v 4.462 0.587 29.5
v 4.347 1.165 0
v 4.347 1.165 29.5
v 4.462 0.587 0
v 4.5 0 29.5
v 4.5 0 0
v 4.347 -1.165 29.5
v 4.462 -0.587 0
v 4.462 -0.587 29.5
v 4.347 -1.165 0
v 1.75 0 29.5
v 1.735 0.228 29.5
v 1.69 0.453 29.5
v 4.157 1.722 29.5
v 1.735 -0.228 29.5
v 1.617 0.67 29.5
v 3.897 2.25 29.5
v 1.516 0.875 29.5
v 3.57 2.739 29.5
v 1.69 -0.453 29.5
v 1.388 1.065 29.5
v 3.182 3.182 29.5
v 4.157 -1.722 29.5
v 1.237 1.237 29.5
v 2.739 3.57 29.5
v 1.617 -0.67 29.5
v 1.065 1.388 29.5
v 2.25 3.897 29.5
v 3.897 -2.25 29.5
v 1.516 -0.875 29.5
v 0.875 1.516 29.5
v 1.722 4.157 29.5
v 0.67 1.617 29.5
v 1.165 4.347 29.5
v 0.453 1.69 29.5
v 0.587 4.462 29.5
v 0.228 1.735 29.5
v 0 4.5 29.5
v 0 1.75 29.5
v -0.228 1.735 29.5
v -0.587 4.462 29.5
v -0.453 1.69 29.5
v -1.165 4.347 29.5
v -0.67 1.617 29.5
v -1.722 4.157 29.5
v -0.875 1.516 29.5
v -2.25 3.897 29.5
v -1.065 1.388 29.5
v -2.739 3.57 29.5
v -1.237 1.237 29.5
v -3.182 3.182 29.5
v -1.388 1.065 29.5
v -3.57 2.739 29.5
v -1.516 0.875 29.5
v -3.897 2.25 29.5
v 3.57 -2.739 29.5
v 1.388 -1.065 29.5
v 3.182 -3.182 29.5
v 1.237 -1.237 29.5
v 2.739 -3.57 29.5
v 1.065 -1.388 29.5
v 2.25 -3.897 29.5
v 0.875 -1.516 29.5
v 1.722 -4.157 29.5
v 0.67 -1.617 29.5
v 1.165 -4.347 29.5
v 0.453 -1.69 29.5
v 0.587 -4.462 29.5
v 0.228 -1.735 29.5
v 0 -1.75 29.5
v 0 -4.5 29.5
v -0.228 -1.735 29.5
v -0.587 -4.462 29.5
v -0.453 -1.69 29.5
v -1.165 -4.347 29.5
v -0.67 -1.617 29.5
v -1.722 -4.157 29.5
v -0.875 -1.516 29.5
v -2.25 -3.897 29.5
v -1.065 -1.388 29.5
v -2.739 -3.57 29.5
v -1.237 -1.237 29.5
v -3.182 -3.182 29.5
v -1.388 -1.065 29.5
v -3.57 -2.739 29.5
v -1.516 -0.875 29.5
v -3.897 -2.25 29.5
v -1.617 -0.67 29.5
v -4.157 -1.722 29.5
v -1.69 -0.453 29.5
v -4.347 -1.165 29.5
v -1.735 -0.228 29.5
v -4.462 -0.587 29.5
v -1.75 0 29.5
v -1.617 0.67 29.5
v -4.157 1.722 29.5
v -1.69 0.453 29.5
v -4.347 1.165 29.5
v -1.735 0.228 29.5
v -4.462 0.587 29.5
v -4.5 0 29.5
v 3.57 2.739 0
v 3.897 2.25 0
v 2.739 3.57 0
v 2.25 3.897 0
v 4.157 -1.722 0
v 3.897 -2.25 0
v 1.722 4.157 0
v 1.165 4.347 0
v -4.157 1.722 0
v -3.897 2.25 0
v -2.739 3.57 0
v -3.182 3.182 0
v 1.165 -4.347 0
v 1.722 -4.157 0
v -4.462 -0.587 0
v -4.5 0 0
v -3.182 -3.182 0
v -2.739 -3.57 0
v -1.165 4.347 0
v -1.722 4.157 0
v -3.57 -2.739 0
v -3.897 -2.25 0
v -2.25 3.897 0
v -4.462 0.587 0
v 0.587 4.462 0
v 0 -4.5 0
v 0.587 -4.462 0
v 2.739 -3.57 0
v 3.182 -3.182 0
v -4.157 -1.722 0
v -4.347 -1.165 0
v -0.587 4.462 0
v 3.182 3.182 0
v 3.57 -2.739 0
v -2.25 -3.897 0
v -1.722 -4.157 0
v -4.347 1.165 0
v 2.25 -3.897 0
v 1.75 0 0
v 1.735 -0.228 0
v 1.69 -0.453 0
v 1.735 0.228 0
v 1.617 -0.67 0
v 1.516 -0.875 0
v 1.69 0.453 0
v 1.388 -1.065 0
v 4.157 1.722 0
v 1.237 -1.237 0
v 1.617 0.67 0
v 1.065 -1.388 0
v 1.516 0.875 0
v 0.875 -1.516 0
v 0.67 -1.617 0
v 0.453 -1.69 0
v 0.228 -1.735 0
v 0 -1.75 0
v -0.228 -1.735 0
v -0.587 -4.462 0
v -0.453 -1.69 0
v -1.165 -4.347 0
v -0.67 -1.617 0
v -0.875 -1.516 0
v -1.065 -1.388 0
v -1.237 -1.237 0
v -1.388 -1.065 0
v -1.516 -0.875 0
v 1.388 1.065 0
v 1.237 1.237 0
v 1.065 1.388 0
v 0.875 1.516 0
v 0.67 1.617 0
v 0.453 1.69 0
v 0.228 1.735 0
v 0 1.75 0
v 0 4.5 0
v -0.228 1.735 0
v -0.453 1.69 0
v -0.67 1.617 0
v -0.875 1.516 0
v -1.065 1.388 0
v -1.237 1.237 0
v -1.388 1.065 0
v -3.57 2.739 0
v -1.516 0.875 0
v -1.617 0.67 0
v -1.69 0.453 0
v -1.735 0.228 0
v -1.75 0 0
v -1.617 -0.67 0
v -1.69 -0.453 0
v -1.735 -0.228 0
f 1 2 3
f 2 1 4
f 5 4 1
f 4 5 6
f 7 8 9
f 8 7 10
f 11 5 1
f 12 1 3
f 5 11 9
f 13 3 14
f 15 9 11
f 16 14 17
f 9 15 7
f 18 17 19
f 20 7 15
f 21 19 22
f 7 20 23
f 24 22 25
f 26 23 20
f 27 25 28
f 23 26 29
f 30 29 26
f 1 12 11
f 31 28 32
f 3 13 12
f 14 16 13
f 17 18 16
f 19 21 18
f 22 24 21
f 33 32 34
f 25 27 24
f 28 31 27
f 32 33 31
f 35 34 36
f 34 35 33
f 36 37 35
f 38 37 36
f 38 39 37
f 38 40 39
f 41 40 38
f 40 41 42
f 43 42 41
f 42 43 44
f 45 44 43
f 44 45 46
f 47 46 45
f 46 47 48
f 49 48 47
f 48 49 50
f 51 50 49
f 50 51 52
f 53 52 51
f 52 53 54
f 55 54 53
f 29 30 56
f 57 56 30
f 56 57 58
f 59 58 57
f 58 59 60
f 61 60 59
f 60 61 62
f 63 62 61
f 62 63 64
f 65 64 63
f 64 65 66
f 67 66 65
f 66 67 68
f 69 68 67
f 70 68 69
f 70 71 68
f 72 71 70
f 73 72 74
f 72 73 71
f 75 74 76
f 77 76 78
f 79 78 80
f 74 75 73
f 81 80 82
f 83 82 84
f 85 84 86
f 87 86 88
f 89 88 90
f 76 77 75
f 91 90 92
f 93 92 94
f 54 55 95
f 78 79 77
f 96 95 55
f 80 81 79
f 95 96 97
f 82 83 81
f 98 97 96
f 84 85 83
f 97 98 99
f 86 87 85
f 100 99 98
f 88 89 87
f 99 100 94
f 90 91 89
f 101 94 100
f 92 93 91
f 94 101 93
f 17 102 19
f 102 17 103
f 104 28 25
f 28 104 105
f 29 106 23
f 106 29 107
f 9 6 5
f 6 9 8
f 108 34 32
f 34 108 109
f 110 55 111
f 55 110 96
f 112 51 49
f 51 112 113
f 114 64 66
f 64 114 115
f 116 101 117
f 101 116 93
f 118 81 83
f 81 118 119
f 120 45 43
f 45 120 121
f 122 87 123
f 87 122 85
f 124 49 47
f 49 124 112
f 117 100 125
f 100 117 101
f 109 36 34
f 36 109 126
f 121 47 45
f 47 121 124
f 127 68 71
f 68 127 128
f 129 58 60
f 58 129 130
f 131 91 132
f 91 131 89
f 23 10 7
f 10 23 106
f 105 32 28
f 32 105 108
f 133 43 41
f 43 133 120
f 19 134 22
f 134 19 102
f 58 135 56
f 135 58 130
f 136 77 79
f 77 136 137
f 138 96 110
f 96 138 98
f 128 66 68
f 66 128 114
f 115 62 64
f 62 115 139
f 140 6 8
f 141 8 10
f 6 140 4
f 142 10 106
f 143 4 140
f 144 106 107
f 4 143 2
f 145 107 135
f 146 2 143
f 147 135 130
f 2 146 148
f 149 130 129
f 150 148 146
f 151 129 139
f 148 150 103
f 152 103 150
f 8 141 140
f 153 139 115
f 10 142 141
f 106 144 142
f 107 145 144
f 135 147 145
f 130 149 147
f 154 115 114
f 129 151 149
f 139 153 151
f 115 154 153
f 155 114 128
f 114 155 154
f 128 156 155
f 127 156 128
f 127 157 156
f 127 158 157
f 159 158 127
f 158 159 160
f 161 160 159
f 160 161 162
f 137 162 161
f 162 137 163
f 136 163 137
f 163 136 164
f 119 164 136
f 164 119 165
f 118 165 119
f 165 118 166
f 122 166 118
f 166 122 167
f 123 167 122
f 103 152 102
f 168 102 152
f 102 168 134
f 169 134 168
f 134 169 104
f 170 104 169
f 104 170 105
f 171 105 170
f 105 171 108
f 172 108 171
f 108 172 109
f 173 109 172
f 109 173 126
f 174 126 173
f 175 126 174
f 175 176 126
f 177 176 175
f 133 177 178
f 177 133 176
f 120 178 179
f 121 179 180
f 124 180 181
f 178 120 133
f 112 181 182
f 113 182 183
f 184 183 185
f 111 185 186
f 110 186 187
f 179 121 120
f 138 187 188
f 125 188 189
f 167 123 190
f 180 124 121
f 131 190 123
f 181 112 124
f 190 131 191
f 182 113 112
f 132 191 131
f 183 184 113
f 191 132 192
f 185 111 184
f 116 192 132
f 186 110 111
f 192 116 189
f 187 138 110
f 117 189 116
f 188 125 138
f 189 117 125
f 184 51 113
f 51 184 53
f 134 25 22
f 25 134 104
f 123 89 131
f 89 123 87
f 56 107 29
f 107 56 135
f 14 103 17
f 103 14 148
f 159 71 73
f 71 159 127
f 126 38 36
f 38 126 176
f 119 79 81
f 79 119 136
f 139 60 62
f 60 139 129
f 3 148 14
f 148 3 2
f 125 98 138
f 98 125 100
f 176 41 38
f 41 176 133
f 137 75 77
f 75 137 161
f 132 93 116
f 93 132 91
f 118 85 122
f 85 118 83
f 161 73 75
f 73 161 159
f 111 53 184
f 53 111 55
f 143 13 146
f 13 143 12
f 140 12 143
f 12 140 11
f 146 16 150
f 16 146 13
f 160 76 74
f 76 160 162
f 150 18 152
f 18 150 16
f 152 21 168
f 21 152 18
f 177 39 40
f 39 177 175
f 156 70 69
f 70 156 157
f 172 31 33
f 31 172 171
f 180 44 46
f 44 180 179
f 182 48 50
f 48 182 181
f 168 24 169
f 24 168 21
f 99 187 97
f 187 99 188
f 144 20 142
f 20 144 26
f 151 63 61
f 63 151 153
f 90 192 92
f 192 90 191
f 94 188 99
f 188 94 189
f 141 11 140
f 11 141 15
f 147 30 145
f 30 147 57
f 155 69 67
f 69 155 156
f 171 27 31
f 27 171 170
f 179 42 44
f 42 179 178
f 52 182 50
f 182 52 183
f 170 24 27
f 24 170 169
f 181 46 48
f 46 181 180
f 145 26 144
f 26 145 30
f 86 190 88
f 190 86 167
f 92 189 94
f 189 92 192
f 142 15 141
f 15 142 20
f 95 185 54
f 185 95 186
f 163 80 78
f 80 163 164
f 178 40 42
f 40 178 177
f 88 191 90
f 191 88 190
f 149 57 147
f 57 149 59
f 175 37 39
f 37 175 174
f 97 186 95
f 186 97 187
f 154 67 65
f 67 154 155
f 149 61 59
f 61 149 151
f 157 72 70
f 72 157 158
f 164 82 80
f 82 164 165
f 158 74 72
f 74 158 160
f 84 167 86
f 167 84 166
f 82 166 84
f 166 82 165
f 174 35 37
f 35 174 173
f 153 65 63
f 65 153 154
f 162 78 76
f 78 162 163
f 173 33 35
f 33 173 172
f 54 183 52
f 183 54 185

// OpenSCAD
// Gen-DH — frame standoff tube between stator and an endbell, on each M3 frame rod (outside rotor OD).
// Print x4. Height = frame_standoff_h (rotor + steel + hub + collar + running clearance).
include <parameters.scad>;
$fn = 48;
difference() {
    cylinder(d=standoff_od, h=frame_standoff_h);
    translate([0, 0, -0.1]) cylinder(d=m3_clear, h=frame_standoff_h + 0.2);
}
